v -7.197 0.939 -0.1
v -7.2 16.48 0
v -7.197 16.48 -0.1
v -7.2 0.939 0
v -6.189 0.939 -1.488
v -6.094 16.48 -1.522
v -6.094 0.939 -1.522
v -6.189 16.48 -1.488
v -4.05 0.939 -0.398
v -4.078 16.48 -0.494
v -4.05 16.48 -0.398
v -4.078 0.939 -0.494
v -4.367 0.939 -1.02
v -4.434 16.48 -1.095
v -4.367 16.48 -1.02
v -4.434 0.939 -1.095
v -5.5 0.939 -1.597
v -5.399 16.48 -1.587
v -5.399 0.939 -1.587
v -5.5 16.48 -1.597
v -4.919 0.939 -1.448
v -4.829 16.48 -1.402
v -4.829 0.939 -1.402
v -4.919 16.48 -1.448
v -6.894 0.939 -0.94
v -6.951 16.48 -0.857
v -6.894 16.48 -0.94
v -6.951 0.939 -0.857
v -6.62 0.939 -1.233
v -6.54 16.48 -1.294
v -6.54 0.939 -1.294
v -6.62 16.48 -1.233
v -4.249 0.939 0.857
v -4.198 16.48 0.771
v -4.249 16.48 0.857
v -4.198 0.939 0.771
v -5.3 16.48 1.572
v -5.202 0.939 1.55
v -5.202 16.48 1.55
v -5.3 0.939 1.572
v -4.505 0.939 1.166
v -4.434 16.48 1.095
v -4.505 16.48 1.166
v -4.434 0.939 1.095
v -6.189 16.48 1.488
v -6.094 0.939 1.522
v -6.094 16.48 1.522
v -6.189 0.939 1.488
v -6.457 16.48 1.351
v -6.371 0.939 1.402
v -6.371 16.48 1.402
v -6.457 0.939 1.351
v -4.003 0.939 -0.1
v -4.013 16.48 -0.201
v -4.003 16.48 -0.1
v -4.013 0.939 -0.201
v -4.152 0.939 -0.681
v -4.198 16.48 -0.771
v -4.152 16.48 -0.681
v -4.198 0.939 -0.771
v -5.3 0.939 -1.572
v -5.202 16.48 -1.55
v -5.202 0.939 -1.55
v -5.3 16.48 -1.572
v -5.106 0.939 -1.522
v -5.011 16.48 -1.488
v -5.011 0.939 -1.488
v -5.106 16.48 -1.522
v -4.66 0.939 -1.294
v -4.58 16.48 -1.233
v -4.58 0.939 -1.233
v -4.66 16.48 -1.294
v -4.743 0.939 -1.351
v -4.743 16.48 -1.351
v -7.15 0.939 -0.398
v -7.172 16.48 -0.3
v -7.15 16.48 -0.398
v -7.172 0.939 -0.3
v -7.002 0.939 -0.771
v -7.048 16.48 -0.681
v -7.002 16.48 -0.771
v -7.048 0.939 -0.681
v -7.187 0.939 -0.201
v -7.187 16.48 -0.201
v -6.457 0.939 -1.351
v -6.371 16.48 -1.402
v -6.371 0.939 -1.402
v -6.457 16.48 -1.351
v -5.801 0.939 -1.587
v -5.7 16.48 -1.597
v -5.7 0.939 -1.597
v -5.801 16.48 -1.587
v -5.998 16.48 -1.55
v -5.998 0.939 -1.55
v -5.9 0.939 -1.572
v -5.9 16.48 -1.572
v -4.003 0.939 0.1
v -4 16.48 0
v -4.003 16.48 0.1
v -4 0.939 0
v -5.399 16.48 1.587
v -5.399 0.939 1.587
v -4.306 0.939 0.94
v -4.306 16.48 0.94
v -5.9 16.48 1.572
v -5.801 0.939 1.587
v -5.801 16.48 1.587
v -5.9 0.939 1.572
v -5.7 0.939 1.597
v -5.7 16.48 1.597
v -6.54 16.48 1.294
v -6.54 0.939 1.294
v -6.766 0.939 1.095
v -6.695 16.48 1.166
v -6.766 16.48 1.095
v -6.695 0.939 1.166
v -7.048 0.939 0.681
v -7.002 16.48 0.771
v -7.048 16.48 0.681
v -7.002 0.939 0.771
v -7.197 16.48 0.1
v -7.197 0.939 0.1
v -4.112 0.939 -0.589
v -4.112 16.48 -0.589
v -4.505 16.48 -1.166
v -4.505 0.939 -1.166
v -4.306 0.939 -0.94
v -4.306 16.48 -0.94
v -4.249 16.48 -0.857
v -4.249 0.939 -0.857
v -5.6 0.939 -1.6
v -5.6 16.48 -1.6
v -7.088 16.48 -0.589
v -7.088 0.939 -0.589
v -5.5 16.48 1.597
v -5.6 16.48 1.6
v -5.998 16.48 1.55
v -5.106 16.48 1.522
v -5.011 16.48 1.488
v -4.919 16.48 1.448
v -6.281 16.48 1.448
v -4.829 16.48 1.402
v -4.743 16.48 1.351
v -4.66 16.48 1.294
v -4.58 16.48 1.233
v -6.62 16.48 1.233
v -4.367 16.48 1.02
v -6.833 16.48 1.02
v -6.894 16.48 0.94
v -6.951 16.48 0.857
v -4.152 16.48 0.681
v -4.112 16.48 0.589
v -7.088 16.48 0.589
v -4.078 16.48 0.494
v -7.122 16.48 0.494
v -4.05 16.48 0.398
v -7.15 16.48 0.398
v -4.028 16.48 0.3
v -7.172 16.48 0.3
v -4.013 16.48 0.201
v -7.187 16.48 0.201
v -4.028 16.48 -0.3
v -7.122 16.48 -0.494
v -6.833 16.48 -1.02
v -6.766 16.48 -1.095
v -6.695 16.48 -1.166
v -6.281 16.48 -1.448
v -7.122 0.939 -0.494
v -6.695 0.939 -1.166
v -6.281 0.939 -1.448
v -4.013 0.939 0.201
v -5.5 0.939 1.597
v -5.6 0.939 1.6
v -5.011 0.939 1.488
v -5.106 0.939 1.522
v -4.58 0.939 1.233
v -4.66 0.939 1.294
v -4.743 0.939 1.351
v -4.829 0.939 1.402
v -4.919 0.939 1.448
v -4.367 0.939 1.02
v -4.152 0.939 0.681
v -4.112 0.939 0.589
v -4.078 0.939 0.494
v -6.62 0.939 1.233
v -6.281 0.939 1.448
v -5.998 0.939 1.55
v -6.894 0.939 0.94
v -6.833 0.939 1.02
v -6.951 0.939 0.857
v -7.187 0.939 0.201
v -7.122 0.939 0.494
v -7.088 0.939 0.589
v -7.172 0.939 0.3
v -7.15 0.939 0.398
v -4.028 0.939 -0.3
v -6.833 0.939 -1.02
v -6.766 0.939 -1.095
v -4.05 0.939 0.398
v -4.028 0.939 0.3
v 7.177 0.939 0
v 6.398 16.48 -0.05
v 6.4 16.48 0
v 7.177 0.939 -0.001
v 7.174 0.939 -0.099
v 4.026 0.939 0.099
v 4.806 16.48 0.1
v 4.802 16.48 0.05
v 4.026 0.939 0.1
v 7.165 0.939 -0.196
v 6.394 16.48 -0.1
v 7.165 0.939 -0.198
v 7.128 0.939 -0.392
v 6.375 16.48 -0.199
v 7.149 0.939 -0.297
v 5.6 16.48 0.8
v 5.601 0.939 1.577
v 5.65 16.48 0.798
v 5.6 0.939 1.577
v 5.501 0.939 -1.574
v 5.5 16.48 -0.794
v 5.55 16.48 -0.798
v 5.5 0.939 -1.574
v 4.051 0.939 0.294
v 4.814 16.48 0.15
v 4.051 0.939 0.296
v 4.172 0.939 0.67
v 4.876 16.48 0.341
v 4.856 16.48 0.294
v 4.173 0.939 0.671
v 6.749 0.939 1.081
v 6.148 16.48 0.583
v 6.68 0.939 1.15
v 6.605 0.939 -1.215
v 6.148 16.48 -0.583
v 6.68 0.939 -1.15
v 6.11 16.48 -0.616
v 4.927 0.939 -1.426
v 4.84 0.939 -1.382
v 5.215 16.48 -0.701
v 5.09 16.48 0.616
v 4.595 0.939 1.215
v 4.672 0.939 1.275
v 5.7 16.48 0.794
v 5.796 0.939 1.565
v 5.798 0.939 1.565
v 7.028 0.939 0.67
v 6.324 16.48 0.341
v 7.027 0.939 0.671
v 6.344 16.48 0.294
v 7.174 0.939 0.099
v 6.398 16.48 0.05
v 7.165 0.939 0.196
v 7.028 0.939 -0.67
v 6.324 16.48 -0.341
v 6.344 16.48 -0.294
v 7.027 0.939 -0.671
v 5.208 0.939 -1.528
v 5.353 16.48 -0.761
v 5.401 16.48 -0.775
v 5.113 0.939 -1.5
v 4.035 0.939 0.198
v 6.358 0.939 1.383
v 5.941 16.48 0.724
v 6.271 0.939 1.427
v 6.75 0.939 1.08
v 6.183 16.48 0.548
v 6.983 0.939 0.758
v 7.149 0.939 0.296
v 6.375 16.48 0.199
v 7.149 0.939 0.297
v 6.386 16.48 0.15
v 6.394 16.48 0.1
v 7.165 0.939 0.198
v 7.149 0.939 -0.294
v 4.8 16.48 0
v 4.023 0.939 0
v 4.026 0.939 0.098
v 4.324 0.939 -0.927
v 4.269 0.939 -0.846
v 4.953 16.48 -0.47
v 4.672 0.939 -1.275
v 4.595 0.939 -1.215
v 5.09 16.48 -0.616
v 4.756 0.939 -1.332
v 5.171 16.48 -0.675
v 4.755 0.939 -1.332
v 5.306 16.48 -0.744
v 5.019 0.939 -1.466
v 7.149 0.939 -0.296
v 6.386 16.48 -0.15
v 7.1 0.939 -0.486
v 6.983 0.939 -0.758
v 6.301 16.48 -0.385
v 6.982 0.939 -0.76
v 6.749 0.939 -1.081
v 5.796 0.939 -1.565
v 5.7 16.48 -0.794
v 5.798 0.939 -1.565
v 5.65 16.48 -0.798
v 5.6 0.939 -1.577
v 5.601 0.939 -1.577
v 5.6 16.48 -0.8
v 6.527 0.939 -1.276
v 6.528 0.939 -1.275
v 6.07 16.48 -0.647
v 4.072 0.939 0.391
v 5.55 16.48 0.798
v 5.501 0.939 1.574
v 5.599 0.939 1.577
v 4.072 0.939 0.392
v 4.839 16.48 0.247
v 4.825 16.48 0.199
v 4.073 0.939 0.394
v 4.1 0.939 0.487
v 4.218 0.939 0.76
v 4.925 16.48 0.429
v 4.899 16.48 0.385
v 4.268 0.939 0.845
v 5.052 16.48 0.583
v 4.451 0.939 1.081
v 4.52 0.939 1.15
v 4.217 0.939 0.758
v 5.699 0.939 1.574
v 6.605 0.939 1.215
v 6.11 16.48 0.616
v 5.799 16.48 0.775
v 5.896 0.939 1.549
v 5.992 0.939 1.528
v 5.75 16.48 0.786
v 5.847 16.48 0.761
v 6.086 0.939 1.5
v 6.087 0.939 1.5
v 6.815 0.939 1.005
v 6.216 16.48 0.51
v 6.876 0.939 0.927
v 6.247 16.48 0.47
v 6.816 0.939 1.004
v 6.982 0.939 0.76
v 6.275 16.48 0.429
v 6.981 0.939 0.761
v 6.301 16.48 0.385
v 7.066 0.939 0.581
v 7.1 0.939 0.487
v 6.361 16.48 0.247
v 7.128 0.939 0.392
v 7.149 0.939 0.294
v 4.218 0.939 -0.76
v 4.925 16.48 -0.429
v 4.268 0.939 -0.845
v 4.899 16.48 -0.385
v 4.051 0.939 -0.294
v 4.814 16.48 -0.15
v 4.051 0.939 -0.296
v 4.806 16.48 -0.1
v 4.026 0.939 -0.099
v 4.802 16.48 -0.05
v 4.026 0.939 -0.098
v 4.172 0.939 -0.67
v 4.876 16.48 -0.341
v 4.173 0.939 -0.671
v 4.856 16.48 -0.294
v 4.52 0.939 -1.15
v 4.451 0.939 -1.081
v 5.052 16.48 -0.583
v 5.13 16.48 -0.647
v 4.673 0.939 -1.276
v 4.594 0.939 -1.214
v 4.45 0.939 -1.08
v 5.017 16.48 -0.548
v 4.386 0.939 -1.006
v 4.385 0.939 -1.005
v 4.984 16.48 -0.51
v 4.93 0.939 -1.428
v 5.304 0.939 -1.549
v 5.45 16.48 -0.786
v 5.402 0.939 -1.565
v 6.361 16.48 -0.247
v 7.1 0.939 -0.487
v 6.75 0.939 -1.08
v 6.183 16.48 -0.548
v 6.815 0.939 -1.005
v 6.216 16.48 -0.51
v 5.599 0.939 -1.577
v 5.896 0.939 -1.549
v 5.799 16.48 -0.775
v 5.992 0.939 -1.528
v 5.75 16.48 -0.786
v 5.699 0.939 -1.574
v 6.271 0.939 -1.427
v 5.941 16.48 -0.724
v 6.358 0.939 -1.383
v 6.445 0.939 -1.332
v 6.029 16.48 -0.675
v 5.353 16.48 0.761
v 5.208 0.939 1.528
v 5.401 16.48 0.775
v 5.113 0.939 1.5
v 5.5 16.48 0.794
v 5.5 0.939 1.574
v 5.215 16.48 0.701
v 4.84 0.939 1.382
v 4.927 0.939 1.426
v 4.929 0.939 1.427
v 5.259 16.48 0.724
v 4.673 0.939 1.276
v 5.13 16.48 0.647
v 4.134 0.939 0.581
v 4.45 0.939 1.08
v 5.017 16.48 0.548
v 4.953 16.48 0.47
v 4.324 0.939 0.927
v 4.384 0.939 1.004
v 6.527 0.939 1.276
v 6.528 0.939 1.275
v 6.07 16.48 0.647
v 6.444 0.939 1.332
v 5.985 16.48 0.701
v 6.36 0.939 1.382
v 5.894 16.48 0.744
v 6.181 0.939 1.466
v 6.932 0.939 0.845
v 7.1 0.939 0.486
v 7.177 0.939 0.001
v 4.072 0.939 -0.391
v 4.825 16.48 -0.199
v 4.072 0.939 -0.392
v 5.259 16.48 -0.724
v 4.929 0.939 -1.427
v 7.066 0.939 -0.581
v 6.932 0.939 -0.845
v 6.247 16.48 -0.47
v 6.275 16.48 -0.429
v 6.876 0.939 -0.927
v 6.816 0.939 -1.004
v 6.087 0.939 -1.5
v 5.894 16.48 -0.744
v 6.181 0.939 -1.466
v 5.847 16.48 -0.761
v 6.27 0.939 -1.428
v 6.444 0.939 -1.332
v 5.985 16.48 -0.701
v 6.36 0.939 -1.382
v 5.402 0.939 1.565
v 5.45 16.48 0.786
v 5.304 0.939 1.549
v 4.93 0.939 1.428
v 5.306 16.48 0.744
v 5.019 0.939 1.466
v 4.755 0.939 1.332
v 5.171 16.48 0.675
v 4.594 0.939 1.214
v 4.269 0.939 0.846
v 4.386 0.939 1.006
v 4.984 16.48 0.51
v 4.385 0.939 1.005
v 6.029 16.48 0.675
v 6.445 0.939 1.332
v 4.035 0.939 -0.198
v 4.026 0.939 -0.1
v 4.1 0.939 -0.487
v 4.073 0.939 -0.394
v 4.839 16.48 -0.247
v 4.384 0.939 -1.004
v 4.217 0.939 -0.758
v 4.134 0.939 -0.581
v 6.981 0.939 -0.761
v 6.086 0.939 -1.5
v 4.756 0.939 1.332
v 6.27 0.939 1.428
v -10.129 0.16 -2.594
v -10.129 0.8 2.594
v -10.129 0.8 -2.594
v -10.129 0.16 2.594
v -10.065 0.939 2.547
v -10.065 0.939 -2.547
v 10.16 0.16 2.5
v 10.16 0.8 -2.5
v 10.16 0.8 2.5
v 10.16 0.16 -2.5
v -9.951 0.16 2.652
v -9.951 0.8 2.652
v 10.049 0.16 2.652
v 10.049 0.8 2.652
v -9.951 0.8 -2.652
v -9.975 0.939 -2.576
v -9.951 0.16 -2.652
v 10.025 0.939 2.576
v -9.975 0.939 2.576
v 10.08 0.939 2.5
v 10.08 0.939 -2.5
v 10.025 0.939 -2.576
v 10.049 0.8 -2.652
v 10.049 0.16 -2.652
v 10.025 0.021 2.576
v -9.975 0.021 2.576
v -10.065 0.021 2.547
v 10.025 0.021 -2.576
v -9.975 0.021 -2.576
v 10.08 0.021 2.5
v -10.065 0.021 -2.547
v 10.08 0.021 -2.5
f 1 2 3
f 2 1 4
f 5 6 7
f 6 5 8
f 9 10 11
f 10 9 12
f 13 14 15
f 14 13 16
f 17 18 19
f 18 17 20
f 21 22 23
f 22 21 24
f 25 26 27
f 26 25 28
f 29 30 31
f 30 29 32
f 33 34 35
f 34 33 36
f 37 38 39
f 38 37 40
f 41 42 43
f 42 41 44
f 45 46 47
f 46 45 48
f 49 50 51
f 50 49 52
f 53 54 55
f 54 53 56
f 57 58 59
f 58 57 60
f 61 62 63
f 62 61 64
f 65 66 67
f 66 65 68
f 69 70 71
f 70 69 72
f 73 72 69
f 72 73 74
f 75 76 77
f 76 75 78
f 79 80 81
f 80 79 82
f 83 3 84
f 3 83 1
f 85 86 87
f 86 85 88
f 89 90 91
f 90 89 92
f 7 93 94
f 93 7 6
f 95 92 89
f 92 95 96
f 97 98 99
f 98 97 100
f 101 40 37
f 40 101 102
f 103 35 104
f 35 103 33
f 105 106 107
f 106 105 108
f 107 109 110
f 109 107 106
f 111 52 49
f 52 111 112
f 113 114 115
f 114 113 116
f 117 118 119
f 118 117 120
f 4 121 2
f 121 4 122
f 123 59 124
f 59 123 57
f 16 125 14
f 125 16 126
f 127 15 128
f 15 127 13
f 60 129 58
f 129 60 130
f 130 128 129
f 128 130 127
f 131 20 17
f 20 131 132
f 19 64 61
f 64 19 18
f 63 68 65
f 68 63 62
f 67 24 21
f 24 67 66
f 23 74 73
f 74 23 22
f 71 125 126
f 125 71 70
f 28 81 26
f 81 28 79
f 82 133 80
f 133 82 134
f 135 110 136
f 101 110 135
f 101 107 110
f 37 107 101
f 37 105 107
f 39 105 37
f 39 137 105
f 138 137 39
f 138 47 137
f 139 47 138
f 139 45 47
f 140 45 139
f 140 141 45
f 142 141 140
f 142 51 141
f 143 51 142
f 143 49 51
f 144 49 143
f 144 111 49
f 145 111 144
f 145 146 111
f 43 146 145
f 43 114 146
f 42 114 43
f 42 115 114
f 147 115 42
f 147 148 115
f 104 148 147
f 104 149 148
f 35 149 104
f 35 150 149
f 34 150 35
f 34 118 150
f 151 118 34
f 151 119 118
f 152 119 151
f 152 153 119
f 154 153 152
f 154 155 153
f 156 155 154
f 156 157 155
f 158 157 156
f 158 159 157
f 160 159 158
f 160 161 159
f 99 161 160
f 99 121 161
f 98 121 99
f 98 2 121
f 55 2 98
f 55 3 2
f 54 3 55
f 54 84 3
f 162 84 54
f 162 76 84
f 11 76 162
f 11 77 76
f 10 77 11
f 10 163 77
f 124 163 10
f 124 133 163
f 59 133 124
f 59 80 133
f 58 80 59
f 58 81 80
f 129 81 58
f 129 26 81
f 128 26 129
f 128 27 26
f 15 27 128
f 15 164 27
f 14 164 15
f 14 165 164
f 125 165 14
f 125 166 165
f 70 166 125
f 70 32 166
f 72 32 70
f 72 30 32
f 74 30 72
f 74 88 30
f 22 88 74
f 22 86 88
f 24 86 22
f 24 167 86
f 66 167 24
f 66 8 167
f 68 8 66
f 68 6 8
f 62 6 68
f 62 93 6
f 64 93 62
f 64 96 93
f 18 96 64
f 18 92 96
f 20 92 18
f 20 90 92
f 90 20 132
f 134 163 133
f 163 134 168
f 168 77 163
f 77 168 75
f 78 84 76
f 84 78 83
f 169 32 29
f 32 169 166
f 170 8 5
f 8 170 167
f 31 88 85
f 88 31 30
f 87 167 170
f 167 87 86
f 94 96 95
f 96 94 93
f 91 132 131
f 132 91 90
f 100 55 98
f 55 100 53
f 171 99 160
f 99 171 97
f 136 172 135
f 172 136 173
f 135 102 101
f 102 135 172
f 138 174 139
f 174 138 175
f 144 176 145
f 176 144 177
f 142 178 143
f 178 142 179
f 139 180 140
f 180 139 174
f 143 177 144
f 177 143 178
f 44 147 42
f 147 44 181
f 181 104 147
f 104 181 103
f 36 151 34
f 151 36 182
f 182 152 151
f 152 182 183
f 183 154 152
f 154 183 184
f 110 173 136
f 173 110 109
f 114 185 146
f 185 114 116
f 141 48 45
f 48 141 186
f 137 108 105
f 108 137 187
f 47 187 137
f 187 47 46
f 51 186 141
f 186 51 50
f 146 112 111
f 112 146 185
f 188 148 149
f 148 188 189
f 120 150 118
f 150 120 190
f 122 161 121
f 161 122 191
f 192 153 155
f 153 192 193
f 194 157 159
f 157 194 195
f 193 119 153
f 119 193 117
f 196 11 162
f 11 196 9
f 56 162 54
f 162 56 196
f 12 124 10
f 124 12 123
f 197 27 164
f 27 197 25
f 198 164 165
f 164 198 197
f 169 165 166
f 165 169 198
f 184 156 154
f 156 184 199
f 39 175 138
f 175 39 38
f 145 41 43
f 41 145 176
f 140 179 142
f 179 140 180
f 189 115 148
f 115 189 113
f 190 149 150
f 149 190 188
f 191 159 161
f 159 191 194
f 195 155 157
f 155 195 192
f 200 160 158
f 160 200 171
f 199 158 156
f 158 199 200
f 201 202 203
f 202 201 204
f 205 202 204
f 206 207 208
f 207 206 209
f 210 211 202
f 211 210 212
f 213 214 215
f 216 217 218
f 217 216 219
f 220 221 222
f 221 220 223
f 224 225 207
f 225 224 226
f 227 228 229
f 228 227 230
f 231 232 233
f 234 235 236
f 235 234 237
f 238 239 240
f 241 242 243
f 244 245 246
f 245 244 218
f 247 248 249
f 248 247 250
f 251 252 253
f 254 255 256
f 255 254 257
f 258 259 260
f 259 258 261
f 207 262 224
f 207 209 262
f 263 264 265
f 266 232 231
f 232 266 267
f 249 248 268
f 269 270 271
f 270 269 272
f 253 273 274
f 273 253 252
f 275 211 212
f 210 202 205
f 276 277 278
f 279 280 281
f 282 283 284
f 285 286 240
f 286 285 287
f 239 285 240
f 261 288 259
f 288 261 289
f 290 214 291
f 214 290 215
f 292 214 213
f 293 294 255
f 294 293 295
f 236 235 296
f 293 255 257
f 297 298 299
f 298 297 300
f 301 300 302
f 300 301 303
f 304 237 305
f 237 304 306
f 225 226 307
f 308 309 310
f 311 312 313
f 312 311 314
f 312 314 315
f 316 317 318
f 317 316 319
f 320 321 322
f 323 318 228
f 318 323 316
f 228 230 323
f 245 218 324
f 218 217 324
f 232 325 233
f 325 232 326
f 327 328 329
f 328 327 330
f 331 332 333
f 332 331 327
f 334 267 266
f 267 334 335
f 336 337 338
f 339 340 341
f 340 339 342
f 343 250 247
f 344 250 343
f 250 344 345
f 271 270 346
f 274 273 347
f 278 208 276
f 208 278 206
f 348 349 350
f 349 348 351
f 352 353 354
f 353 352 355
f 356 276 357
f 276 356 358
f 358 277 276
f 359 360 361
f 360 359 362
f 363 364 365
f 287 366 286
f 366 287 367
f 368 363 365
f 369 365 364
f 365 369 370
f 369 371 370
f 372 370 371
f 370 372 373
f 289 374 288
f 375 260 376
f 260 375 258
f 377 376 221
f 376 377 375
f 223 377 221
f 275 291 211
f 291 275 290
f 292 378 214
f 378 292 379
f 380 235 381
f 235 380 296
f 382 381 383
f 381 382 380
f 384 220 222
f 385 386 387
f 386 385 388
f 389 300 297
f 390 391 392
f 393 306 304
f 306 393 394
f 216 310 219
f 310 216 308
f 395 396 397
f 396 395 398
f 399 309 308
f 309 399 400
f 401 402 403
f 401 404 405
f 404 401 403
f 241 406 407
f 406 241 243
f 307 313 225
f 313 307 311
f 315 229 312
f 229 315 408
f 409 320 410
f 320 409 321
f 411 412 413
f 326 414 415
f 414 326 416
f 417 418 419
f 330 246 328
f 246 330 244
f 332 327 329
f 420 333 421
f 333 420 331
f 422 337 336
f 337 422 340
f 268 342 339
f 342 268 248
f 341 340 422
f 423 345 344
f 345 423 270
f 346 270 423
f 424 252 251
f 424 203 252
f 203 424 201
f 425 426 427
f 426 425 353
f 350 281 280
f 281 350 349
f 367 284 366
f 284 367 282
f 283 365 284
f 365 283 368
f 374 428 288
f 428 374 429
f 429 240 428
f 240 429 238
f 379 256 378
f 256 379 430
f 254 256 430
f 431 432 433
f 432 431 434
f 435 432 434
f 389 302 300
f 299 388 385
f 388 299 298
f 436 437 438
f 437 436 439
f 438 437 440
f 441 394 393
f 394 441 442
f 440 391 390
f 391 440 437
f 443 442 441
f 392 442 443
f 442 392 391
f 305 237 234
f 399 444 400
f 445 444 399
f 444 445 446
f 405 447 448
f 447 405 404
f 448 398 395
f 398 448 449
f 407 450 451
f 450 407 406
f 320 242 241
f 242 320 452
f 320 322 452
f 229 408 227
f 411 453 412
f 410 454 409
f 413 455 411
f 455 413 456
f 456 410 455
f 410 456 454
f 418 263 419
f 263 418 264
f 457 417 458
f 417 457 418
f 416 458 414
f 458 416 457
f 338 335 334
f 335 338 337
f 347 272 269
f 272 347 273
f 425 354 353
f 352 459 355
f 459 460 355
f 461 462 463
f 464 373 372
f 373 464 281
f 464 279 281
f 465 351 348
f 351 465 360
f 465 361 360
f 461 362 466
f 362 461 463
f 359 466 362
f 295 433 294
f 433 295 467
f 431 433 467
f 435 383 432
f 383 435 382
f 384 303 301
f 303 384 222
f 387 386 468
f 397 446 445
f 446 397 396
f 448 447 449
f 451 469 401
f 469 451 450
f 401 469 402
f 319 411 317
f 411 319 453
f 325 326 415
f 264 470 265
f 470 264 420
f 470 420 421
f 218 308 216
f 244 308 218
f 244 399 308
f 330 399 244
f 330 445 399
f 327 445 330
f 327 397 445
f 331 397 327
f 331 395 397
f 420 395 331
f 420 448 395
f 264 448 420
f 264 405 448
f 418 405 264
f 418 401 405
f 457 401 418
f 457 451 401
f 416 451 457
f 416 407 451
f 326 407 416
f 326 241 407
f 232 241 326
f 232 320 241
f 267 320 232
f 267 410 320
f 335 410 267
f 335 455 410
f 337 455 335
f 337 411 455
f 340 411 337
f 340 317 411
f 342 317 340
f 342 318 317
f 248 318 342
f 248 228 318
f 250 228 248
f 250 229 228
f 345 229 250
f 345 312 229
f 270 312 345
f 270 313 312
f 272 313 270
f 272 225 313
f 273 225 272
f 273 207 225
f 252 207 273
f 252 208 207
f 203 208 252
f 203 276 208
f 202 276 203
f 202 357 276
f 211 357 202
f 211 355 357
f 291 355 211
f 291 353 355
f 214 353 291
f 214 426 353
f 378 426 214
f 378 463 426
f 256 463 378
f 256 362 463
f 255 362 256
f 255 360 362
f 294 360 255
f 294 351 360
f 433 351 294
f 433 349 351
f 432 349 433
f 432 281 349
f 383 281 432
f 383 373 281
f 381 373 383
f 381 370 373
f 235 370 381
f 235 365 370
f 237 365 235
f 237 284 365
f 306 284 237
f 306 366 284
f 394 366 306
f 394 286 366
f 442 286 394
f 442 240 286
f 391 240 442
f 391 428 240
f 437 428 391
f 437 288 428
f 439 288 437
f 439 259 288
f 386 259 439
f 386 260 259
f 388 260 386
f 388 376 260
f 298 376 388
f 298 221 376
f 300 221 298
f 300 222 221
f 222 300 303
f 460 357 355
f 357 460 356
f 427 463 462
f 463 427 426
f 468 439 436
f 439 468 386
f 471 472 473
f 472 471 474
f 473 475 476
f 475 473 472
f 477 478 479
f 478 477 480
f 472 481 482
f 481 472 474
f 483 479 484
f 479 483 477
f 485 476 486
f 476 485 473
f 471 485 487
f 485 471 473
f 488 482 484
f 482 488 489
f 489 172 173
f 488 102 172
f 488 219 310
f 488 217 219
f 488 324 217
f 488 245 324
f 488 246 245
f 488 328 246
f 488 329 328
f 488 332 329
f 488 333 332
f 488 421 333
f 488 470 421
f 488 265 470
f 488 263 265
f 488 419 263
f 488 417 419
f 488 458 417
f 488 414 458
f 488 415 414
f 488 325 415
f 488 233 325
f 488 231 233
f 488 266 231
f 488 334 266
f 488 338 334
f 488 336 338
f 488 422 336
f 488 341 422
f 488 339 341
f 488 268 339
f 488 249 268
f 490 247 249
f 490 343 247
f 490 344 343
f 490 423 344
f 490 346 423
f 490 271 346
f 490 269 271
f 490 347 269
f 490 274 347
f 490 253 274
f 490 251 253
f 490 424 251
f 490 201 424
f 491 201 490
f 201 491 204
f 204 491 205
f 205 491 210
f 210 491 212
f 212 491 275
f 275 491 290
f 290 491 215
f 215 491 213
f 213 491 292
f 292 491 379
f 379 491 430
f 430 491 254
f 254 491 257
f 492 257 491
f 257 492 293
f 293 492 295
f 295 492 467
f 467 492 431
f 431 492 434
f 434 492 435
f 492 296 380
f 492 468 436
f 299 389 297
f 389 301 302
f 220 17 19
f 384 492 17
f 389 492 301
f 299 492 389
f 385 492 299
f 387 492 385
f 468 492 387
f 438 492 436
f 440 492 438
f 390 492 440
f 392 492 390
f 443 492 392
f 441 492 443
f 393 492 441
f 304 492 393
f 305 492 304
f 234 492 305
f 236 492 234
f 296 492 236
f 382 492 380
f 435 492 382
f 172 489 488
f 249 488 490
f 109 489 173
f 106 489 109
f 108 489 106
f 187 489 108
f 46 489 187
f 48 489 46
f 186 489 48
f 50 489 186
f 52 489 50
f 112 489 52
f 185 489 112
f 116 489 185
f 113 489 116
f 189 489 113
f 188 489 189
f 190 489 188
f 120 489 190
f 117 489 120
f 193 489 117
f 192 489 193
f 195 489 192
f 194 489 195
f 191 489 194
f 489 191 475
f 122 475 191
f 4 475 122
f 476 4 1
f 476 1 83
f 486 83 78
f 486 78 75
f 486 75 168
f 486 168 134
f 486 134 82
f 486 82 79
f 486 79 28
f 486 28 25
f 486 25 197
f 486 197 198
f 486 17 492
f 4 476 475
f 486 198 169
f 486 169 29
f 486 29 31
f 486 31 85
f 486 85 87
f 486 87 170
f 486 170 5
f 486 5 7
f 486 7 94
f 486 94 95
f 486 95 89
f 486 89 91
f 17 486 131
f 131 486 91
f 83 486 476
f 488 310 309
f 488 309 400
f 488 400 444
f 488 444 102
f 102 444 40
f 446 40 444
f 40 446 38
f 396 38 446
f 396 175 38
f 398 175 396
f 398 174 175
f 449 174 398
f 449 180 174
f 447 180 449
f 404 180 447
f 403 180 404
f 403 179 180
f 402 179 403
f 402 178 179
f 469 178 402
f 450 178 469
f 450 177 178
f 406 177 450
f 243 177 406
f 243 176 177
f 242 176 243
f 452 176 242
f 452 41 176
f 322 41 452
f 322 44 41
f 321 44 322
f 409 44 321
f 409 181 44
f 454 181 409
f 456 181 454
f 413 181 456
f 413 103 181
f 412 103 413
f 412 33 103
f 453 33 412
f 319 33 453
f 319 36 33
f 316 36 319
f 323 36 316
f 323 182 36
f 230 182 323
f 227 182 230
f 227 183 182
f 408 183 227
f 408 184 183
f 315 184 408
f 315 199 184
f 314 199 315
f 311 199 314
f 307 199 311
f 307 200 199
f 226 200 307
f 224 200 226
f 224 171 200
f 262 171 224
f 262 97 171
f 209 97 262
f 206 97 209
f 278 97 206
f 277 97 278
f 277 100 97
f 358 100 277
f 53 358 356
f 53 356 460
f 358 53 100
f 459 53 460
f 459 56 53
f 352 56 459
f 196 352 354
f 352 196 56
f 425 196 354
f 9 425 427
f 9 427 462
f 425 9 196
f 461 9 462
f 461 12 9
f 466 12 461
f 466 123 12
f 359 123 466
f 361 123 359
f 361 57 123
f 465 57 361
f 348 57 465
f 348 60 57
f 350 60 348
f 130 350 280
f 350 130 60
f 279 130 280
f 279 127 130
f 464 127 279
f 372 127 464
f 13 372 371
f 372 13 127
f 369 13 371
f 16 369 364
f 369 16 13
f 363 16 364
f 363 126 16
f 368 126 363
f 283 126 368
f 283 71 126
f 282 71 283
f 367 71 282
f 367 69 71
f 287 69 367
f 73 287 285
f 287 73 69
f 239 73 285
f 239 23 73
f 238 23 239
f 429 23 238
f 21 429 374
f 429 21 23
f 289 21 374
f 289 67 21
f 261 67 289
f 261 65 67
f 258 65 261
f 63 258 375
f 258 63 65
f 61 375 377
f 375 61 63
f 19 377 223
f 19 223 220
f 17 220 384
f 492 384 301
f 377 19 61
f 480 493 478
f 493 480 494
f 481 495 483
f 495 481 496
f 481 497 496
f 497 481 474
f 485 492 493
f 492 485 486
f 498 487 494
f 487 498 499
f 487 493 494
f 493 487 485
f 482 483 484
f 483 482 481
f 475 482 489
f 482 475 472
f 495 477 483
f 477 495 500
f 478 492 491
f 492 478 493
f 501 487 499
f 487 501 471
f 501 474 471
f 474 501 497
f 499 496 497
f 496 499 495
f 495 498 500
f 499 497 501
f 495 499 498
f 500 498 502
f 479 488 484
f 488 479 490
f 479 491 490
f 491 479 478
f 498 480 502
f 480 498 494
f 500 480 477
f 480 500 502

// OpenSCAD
//---------------------------
// Test Retract 
//---------------------------
$fn=100;

Hc=0.16; // Layer Height
Line_Width = 0.4; // line Width

cylinder_size = 4*Line_Width;
cylinder_height = 100*Hc;

rotate(90,[-1, 0, 0]) translate([0, 0, 3*Hc]) Model();

module Model() {
    union() {
      Base();
      Etage();
    } 
}

module Base() {
    minkowski() {
    cube([20,5,4*Hc], center = true);
    //cylinder(r=1,h=Hc, center = false);
        sphere(Hc,$fn=5);
    }
}

module Etage() {
    difference() {
        union() {
            // First pilar
            translate([-3.5*cylinder_size, 0, 0])  cylinder(cylinder_height,cylinder_size,cylinder_size, center = false);
            
            // Second pilar
            translate([3.5*cylinder_size, 0, 0])  cylinder(cylinder_height,cylinder_size,2*Line_Width, center = false);
  
        }
    }
}
